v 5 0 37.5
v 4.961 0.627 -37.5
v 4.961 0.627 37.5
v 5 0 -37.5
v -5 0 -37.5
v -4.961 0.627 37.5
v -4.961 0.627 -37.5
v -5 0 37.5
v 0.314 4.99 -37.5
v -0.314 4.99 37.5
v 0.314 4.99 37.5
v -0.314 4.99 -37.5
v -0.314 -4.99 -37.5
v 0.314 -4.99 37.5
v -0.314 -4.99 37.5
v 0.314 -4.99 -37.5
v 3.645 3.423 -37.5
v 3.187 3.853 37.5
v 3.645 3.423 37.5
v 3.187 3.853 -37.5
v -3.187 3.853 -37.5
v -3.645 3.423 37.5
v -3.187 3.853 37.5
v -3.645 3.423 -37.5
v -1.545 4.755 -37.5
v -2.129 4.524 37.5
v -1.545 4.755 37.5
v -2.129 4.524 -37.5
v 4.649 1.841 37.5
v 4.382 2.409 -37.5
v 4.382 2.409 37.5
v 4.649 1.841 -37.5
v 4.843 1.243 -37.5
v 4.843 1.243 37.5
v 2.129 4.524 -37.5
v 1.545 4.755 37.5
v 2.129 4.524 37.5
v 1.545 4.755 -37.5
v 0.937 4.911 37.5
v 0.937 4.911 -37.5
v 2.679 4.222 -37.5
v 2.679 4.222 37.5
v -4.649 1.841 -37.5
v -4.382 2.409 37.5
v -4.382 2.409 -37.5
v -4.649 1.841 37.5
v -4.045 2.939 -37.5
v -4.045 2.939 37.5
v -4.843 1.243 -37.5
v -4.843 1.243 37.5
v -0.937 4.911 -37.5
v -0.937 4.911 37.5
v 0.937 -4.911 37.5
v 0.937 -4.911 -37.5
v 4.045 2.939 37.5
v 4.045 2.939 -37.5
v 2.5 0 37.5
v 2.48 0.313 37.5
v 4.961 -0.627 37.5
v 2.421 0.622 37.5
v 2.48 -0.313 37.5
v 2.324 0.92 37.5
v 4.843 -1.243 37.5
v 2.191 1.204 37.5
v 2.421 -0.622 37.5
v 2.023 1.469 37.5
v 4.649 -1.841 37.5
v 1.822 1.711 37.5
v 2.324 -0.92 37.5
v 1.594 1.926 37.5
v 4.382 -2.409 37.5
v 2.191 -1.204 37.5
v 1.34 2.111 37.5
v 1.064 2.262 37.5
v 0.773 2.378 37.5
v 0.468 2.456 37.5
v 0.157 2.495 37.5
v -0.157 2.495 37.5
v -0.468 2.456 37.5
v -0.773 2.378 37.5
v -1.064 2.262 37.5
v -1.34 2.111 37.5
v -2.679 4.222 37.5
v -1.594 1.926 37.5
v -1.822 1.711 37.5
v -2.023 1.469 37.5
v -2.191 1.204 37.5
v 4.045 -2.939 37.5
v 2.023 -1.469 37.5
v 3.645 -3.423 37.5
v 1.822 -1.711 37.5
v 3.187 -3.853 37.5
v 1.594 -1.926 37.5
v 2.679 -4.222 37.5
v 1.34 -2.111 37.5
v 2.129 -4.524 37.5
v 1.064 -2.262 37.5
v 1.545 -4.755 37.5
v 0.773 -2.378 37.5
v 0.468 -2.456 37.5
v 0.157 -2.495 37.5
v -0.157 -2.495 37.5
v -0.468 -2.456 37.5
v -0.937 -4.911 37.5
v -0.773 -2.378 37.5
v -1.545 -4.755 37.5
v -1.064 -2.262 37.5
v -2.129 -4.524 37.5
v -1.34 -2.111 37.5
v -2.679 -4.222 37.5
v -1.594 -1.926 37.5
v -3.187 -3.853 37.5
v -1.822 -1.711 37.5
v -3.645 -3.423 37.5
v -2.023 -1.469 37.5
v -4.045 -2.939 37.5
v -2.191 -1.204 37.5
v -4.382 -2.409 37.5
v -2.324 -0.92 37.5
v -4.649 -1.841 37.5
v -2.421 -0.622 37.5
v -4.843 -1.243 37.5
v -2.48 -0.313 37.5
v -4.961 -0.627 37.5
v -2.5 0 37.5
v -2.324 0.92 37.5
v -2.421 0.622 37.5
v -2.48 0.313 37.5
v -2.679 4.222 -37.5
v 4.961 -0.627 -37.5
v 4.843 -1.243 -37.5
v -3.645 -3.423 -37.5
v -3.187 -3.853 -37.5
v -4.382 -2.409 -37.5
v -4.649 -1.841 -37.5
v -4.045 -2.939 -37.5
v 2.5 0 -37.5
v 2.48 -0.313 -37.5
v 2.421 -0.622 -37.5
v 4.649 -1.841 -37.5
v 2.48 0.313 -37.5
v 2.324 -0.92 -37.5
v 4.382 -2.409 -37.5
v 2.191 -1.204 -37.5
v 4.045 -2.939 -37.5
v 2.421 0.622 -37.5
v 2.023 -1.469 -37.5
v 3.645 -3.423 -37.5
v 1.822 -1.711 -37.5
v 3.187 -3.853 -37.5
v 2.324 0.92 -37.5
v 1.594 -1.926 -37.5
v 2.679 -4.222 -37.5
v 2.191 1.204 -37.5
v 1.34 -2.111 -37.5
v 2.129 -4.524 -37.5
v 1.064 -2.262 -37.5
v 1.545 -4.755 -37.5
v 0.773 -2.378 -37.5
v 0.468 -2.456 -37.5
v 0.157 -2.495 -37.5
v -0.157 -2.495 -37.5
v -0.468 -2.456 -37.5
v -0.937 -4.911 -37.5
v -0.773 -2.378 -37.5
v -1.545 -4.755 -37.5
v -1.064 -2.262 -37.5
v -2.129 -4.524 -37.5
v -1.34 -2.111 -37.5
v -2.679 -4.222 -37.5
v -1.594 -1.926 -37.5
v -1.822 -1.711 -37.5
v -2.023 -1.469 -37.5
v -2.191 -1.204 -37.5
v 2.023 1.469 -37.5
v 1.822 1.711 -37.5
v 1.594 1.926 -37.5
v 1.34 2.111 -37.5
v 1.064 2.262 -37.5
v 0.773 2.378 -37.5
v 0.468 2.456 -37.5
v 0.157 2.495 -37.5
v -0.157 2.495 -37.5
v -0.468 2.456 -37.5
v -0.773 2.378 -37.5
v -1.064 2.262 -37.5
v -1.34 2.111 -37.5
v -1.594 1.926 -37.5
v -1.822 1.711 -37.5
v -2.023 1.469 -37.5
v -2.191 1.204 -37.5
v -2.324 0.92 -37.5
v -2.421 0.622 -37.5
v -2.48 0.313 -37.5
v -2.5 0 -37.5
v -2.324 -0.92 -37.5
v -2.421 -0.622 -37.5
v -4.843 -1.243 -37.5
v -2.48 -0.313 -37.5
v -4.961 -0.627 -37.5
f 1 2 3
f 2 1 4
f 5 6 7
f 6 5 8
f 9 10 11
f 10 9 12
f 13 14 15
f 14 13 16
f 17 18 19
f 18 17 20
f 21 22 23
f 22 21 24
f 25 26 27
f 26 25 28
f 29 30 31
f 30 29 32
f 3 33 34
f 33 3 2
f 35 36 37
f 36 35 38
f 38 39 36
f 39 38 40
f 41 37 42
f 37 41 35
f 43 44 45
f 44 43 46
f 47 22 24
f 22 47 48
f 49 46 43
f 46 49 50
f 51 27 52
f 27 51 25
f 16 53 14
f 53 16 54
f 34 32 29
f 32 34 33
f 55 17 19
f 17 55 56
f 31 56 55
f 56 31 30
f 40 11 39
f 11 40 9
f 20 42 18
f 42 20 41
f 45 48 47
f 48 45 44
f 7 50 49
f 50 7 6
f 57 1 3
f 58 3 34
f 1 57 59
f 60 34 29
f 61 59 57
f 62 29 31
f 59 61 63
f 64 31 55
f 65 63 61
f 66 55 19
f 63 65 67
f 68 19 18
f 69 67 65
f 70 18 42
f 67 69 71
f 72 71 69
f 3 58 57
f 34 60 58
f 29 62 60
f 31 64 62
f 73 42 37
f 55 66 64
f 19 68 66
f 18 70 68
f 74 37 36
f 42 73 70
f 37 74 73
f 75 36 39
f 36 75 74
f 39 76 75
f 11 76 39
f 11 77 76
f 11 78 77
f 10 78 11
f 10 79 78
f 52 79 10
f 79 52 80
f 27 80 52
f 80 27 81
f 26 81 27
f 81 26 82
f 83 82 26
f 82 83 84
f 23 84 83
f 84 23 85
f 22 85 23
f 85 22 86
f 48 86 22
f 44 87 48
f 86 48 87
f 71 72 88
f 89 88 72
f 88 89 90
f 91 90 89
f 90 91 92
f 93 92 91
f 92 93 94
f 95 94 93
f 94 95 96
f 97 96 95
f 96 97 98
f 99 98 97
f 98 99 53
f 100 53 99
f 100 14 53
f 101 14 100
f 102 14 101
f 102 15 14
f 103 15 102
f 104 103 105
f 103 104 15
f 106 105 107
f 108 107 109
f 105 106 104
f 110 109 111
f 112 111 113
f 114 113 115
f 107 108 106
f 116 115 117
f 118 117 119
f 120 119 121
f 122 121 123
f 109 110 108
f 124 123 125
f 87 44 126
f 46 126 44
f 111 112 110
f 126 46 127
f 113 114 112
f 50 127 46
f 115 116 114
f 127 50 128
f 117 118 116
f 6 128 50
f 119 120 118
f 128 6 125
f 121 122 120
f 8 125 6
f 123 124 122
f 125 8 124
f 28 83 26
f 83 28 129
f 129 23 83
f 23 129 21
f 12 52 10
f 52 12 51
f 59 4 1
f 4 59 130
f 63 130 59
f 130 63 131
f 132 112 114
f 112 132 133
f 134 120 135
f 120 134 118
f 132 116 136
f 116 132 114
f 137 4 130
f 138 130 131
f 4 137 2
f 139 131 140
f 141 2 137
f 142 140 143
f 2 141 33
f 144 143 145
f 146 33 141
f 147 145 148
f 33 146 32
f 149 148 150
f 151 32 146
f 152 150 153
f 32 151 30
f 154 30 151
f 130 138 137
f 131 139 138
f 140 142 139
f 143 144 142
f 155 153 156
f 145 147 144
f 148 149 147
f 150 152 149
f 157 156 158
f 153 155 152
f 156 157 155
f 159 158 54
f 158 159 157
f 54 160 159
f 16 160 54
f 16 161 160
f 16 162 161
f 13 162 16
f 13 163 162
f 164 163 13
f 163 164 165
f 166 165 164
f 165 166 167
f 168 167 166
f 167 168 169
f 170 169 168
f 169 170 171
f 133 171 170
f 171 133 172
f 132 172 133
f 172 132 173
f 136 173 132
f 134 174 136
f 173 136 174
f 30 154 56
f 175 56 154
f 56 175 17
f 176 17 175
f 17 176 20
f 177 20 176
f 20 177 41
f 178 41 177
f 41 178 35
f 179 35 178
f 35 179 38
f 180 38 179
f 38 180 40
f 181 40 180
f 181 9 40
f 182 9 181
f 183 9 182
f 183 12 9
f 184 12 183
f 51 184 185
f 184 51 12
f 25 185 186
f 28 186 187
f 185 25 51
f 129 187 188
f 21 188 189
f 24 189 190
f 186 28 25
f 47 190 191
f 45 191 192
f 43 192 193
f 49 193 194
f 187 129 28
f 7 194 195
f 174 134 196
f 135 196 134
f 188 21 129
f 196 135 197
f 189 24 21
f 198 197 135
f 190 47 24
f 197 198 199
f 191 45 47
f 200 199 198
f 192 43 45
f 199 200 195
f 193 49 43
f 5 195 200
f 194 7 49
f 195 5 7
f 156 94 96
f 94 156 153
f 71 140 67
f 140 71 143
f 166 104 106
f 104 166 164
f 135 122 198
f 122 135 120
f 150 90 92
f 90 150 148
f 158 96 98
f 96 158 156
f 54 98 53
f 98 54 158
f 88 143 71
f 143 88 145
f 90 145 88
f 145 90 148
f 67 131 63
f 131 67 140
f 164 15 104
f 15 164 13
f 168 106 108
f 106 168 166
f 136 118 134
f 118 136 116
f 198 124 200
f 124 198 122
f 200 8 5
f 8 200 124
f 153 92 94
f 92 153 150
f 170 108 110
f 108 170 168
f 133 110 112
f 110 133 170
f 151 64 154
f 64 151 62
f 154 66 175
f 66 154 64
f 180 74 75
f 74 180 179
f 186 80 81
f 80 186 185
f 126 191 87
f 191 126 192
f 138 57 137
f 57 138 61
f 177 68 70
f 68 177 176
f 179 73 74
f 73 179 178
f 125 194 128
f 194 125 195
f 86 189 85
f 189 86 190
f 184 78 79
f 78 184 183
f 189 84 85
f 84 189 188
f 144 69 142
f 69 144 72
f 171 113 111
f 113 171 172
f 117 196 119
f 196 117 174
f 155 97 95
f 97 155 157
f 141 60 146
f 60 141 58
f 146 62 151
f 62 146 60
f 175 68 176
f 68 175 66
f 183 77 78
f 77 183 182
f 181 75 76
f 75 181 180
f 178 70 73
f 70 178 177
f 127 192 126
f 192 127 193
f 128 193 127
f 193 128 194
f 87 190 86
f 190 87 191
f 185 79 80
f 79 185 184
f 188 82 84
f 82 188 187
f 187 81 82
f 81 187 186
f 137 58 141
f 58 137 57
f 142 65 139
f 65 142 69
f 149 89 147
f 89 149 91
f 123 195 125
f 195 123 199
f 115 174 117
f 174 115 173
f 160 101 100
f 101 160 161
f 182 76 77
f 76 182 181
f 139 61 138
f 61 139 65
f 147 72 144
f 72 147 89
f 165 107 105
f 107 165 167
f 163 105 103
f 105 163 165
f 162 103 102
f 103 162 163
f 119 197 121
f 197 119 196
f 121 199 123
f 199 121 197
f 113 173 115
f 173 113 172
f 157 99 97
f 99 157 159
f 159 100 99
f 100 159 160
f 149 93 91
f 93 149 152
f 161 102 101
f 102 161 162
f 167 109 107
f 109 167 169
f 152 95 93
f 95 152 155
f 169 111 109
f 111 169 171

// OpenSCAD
$fn = 50;


difference() {
	union() {
		translate(v = [0, 0, -37.5000000000]) {
			cylinder(h = 75, r = 5.0000000000);
		}
	}
	union() {
		translate(v = [0, 0, -100.0000000000]) {
			cylinder(h = 200, r = 2.5000000000);
		}
	}
}
